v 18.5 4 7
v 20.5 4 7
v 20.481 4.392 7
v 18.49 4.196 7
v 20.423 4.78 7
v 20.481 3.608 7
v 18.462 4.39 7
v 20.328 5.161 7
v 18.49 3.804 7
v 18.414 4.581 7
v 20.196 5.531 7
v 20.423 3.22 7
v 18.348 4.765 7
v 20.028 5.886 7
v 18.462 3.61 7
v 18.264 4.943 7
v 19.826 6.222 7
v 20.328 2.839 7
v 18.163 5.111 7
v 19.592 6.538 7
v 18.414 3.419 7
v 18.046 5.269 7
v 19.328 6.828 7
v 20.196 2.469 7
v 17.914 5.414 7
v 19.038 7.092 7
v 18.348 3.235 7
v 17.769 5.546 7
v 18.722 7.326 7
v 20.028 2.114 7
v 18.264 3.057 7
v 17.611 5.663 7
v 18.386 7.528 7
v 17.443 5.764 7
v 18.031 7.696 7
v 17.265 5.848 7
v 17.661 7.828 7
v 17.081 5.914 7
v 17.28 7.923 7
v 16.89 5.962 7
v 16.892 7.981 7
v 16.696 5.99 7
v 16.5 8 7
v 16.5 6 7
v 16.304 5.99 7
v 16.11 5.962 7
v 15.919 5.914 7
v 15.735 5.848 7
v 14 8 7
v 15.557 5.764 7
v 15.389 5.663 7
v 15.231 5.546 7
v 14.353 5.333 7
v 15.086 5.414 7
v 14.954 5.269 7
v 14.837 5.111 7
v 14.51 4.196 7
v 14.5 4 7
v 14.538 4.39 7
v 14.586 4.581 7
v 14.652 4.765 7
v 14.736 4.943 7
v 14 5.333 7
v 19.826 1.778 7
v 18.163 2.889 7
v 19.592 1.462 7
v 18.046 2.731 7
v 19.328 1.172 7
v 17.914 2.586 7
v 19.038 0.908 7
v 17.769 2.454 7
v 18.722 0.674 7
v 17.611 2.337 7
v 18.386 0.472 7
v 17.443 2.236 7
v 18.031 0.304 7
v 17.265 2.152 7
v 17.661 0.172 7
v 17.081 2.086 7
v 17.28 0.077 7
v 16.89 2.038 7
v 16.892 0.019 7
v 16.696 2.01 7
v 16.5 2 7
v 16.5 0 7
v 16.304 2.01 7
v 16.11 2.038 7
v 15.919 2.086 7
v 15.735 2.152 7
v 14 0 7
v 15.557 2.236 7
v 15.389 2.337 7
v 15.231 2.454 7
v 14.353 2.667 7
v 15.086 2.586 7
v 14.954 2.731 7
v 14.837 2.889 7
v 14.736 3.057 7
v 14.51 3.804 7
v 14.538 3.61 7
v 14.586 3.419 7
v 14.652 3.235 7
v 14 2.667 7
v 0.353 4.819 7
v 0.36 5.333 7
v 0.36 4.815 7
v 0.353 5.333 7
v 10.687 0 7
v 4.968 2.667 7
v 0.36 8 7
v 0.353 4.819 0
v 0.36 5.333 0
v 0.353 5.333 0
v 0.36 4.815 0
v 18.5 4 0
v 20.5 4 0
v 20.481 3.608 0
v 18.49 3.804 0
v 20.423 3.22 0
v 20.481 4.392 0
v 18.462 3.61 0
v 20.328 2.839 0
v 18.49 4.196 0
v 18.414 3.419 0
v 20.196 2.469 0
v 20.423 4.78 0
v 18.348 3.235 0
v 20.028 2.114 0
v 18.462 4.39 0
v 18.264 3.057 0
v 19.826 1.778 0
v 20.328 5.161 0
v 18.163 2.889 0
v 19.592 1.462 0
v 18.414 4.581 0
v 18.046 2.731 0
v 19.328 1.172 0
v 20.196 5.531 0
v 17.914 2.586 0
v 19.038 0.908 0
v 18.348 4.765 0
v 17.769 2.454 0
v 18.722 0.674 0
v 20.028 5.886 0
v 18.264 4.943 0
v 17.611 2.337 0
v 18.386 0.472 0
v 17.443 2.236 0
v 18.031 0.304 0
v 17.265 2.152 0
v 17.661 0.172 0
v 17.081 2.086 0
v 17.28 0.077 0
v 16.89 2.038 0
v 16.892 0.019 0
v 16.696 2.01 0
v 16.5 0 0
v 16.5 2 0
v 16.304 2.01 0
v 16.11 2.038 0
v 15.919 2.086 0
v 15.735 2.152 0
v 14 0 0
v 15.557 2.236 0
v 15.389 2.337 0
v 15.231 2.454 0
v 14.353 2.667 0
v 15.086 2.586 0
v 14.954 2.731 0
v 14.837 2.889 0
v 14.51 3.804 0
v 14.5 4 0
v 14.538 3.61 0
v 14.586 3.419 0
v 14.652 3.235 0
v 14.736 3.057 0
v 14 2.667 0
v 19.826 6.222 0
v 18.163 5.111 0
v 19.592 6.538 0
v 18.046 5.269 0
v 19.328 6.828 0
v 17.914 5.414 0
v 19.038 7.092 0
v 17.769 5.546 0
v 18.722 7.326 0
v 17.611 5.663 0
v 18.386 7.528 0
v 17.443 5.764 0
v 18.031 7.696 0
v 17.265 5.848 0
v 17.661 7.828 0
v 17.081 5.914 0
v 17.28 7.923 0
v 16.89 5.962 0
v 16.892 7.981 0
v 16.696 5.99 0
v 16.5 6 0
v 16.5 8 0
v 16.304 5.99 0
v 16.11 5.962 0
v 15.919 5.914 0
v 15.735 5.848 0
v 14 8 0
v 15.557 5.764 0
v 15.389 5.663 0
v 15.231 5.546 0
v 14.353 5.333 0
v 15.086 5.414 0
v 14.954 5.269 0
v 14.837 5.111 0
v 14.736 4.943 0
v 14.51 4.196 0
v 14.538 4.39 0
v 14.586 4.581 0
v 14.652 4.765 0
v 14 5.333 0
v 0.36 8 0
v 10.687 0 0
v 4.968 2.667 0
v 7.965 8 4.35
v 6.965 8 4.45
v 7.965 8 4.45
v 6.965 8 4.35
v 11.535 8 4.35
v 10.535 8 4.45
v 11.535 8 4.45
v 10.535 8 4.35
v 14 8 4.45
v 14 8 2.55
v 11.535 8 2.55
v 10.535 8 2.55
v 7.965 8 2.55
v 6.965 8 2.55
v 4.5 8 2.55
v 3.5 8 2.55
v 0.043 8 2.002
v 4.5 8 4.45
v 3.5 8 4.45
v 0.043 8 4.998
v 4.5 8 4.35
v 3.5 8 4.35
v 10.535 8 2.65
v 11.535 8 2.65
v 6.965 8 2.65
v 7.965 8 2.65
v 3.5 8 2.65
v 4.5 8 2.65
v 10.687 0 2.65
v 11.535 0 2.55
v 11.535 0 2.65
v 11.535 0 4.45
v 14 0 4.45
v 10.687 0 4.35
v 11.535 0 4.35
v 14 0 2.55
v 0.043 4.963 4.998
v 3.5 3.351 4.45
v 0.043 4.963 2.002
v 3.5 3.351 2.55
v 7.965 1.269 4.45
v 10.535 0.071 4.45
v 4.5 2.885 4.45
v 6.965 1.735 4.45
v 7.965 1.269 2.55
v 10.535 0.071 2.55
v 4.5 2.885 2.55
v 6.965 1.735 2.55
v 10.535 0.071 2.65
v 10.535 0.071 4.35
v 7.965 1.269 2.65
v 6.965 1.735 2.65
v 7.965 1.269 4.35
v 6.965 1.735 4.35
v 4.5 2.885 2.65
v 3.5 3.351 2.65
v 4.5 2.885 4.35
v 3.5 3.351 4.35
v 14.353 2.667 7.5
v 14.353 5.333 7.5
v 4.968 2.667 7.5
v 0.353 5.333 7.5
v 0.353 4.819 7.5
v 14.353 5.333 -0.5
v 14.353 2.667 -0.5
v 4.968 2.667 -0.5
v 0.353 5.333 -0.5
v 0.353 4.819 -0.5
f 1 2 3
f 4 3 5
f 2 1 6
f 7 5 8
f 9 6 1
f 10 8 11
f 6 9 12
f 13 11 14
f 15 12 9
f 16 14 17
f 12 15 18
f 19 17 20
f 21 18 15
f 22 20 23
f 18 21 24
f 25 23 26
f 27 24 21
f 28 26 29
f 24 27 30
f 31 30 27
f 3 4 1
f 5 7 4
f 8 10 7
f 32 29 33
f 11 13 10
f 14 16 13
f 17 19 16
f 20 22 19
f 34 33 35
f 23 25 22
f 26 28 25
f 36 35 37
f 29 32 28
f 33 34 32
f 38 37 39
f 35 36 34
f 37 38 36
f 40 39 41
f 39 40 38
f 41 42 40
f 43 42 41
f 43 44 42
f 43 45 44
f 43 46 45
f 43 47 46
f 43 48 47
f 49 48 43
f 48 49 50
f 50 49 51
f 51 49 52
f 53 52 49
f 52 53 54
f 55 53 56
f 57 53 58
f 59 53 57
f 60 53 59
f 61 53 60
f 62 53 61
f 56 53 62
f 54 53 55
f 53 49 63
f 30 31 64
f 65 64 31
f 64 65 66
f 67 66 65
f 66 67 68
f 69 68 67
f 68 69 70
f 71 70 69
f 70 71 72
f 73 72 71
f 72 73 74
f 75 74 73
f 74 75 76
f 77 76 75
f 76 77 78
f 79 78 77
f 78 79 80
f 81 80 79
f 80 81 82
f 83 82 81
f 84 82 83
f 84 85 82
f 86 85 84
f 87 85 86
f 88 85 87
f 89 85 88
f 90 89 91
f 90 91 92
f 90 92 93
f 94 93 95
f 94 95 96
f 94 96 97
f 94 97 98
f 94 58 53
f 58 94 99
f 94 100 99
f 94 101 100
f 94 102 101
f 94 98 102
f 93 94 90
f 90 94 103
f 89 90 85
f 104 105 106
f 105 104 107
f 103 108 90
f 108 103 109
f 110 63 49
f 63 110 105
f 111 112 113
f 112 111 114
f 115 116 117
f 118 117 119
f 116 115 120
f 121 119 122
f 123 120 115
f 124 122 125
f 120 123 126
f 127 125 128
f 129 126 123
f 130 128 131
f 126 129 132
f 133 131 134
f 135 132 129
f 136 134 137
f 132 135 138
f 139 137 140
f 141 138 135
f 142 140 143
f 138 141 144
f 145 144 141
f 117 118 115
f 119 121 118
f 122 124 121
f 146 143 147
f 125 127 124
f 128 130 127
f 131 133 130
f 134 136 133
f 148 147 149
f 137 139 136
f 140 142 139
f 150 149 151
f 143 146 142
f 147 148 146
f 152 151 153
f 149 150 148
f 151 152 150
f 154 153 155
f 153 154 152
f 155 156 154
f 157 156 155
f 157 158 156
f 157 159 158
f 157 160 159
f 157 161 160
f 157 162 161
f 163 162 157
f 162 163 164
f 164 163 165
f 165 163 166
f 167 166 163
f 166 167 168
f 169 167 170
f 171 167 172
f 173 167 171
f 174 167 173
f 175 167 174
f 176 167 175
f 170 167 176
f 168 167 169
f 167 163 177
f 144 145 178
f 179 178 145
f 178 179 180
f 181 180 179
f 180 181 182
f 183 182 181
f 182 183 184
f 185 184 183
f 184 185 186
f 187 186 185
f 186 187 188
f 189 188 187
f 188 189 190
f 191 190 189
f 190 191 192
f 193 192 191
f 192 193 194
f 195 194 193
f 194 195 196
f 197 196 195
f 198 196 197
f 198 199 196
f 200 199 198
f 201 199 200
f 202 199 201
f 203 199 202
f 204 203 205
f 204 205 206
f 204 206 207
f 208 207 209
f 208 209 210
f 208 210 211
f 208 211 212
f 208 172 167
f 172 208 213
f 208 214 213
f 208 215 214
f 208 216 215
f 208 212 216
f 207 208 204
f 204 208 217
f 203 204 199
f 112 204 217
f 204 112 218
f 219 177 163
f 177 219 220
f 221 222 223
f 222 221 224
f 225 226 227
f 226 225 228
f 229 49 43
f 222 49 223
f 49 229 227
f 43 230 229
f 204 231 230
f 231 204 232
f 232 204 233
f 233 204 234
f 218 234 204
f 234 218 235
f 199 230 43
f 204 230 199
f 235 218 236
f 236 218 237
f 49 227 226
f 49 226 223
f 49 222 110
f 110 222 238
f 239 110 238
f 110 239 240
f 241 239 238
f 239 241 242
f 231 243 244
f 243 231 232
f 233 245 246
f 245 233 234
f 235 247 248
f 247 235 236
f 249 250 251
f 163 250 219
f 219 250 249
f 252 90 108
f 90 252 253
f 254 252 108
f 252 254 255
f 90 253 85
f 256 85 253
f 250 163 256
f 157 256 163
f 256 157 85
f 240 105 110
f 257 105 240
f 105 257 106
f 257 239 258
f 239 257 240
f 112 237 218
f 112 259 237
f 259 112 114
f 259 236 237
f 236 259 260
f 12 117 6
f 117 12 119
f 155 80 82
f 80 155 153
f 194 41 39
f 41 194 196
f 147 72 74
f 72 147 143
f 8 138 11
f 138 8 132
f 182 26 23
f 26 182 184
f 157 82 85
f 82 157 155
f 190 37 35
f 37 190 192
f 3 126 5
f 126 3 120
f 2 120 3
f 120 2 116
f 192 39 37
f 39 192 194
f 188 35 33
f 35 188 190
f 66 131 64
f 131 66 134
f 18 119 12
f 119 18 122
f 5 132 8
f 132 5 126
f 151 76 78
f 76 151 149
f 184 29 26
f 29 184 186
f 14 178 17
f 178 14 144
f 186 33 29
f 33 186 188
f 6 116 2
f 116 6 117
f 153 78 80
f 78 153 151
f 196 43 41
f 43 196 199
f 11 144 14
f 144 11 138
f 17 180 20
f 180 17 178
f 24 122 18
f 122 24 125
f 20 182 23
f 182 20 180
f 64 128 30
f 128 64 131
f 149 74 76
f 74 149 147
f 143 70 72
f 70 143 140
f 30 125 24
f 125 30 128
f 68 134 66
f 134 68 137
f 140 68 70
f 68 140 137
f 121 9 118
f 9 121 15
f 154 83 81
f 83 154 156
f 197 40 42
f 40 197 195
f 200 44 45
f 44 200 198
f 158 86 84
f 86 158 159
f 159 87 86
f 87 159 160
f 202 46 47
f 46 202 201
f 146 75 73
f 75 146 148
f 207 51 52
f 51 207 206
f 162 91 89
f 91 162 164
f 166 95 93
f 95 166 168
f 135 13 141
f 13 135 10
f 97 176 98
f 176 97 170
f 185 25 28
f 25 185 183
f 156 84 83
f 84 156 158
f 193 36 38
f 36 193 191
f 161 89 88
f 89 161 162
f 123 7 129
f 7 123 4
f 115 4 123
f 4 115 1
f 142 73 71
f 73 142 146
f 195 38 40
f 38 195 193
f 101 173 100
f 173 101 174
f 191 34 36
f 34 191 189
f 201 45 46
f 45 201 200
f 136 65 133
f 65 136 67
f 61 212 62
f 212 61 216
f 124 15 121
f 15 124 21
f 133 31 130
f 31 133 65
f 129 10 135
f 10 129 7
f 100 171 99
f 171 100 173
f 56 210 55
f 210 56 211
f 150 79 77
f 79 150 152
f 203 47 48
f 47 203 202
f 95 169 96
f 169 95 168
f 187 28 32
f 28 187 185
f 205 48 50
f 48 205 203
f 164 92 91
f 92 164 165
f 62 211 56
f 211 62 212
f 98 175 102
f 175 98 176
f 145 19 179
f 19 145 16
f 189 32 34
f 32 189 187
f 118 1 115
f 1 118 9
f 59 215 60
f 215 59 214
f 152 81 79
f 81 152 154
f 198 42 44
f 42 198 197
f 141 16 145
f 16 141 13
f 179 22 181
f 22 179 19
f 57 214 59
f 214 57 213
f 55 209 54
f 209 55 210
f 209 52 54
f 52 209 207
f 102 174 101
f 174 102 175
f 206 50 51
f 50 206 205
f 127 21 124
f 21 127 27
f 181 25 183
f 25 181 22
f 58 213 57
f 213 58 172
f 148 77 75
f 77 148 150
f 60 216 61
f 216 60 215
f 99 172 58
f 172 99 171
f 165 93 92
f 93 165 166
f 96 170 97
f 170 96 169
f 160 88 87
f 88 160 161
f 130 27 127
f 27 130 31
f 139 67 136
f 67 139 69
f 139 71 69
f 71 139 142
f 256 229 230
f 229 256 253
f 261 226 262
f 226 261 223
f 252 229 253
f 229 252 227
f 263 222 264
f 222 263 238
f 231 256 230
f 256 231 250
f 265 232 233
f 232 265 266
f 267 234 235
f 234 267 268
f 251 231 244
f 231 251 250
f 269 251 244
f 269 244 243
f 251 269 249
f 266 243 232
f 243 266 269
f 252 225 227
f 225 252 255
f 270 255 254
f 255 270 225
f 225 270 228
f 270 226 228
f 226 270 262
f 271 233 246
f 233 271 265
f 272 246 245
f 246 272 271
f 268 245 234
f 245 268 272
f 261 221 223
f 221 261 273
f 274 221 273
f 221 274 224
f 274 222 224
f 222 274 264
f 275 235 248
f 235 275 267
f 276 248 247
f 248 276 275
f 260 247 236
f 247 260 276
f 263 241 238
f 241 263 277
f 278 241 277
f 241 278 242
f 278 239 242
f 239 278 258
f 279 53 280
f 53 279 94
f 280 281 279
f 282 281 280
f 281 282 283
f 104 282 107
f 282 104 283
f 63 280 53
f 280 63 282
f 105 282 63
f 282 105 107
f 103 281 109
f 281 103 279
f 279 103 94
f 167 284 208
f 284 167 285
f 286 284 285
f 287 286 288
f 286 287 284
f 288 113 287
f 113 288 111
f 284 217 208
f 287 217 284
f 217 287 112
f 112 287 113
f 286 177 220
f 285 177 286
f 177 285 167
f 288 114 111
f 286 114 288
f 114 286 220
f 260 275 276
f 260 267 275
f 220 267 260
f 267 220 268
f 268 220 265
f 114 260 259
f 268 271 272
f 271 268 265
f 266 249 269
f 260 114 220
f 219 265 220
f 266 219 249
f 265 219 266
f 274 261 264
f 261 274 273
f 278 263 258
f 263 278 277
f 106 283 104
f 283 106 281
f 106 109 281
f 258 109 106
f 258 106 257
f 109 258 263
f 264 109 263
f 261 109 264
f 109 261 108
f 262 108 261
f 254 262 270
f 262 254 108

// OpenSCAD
$fn= $preview ? 32 : 64;  // render more accurately than preview
thickness = 7.0;       // thickness in mm
toothDepth = .1;       // thickness of tooth at front of slot
toothWidth = 1;        // thickness of front teeth
stringHoleRadius = 2;  // radius of hole for string
slotDepth = 1.9;       // depth of slot; PCB is 1.6mm
slotLength = 14;       // length of slot
slotGap = 0.5;         // gap between slot and string hole
tipAngle = 9;          // angle of opening of slot
tipLength = 3.5;       // length of (angled) tip
ridgeHeight = 0.5;     // height of ridge above and below

width = stringHoleRadius * 4;           // width of clip
length = slotLength + width + slotGap;  // total length
ridgeWidth = width/3;                 // width of ridge on top and bottom

difference(){
    union(){
        difference(){
            union(){
                translate([tipLength,0,0])  // Main body
                    cube([slotLength-tipLength + slotGap + stringHoleRadius, width, thickness], center=false);
                translate([tipLength, width, (thickness + slotDepth)/2])  // add front angle
                    rotate([0,-tipAngle,180])
                    cube([tipLength, width, (thickness-slotDepth)/2]);
                translate([tipLength, 0, (thickness - slotDepth)/2])  // add front angle
                    rotate([180,tipAngle,180])
                    cube([tipLength, width, (thickness-slotDepth)/2]);
                translate([slotLength + stringHoleRadius + slotGap, width/2, 0])
                    cylinder(h=thickness, r=width/2, center=false);                              // string end
            }
            translate([slotLength + stringHoleRadius + slotGap, width/2, -.1])
                cylinder(h=thickness + .2, r=stringHoleRadius, center=false);                    // remove slot
            translate([-.1,-.1,(thickness-slotDepth)/2])
                cube([slotLength + .1, width + .2, slotDepth], center=false);                    // remove string hole
            translate([0,-.1,-slotDepth])         // shave off bottom
                cube([slotLength, width + .2, slotDepth], center=false);
            translate([0,-.1,thickness])         // shave off top
                cube([slotLength, width + .2, slotDepth], center=false);
        }

        // Add teeth
        translate([tipLength + (slotLength-tipLength)*.67, 0, (thickness - slotDepth)/2])
            cube([1, width, toothDepth], center=false);
        translate([tipLength + (slotLength-tipLength)*.67, 0, (thickness + slotDepth)/2 - toothDepth])
            cube([toothWidth, width, toothDepth], center=false);
        translate([tipLength + (slotLength-tipLength)*.33, 0, (thickness - slotDepth)/2])
            cube([1, width, toothDepth], center=false);
        translate([tipLength + (slotLength-tipLength)*.33, 0, (thickness + slotDepth)/2 - toothDepth])
            cube([toothWidth, width, toothDepth], center=false);
        translate([tipLength, 0, (thickness - slotDepth)/2])
            cube([1, width, toothDepth], center=false);
        translate([tipLength, 0, (thickness + slotDepth)/2 - toothDepth])
            cube([toothWidth, width, toothDepth], center=false);

        // Add ridge on top and bottom
        translate([
                    tipLength - stringHoleRadius*3/2 - slotGap/3.4,
                    ridgeWidth,
                    thickness])  // ridge on top
            cube([slotLength, ridgeWidth, ridgeHeight], center=false);
        translate([
                    tipLength - stringHoleRadius*3/2 - slotGap/3.4,
                    ridgeWidth,
                    -ridgeHeight])  // ridge on bottom
            cube([slotLength, ridgeWidth, ridgeHeight], center=false);

    }

    // FIXME: This is only to correct for a PCB mistake on 2022-thumb
    translate([1, -1, 0])                // taper one side
        rotate([0, 0, -25])
        cube([20, 10, thickness*2+2], center=true);
}
